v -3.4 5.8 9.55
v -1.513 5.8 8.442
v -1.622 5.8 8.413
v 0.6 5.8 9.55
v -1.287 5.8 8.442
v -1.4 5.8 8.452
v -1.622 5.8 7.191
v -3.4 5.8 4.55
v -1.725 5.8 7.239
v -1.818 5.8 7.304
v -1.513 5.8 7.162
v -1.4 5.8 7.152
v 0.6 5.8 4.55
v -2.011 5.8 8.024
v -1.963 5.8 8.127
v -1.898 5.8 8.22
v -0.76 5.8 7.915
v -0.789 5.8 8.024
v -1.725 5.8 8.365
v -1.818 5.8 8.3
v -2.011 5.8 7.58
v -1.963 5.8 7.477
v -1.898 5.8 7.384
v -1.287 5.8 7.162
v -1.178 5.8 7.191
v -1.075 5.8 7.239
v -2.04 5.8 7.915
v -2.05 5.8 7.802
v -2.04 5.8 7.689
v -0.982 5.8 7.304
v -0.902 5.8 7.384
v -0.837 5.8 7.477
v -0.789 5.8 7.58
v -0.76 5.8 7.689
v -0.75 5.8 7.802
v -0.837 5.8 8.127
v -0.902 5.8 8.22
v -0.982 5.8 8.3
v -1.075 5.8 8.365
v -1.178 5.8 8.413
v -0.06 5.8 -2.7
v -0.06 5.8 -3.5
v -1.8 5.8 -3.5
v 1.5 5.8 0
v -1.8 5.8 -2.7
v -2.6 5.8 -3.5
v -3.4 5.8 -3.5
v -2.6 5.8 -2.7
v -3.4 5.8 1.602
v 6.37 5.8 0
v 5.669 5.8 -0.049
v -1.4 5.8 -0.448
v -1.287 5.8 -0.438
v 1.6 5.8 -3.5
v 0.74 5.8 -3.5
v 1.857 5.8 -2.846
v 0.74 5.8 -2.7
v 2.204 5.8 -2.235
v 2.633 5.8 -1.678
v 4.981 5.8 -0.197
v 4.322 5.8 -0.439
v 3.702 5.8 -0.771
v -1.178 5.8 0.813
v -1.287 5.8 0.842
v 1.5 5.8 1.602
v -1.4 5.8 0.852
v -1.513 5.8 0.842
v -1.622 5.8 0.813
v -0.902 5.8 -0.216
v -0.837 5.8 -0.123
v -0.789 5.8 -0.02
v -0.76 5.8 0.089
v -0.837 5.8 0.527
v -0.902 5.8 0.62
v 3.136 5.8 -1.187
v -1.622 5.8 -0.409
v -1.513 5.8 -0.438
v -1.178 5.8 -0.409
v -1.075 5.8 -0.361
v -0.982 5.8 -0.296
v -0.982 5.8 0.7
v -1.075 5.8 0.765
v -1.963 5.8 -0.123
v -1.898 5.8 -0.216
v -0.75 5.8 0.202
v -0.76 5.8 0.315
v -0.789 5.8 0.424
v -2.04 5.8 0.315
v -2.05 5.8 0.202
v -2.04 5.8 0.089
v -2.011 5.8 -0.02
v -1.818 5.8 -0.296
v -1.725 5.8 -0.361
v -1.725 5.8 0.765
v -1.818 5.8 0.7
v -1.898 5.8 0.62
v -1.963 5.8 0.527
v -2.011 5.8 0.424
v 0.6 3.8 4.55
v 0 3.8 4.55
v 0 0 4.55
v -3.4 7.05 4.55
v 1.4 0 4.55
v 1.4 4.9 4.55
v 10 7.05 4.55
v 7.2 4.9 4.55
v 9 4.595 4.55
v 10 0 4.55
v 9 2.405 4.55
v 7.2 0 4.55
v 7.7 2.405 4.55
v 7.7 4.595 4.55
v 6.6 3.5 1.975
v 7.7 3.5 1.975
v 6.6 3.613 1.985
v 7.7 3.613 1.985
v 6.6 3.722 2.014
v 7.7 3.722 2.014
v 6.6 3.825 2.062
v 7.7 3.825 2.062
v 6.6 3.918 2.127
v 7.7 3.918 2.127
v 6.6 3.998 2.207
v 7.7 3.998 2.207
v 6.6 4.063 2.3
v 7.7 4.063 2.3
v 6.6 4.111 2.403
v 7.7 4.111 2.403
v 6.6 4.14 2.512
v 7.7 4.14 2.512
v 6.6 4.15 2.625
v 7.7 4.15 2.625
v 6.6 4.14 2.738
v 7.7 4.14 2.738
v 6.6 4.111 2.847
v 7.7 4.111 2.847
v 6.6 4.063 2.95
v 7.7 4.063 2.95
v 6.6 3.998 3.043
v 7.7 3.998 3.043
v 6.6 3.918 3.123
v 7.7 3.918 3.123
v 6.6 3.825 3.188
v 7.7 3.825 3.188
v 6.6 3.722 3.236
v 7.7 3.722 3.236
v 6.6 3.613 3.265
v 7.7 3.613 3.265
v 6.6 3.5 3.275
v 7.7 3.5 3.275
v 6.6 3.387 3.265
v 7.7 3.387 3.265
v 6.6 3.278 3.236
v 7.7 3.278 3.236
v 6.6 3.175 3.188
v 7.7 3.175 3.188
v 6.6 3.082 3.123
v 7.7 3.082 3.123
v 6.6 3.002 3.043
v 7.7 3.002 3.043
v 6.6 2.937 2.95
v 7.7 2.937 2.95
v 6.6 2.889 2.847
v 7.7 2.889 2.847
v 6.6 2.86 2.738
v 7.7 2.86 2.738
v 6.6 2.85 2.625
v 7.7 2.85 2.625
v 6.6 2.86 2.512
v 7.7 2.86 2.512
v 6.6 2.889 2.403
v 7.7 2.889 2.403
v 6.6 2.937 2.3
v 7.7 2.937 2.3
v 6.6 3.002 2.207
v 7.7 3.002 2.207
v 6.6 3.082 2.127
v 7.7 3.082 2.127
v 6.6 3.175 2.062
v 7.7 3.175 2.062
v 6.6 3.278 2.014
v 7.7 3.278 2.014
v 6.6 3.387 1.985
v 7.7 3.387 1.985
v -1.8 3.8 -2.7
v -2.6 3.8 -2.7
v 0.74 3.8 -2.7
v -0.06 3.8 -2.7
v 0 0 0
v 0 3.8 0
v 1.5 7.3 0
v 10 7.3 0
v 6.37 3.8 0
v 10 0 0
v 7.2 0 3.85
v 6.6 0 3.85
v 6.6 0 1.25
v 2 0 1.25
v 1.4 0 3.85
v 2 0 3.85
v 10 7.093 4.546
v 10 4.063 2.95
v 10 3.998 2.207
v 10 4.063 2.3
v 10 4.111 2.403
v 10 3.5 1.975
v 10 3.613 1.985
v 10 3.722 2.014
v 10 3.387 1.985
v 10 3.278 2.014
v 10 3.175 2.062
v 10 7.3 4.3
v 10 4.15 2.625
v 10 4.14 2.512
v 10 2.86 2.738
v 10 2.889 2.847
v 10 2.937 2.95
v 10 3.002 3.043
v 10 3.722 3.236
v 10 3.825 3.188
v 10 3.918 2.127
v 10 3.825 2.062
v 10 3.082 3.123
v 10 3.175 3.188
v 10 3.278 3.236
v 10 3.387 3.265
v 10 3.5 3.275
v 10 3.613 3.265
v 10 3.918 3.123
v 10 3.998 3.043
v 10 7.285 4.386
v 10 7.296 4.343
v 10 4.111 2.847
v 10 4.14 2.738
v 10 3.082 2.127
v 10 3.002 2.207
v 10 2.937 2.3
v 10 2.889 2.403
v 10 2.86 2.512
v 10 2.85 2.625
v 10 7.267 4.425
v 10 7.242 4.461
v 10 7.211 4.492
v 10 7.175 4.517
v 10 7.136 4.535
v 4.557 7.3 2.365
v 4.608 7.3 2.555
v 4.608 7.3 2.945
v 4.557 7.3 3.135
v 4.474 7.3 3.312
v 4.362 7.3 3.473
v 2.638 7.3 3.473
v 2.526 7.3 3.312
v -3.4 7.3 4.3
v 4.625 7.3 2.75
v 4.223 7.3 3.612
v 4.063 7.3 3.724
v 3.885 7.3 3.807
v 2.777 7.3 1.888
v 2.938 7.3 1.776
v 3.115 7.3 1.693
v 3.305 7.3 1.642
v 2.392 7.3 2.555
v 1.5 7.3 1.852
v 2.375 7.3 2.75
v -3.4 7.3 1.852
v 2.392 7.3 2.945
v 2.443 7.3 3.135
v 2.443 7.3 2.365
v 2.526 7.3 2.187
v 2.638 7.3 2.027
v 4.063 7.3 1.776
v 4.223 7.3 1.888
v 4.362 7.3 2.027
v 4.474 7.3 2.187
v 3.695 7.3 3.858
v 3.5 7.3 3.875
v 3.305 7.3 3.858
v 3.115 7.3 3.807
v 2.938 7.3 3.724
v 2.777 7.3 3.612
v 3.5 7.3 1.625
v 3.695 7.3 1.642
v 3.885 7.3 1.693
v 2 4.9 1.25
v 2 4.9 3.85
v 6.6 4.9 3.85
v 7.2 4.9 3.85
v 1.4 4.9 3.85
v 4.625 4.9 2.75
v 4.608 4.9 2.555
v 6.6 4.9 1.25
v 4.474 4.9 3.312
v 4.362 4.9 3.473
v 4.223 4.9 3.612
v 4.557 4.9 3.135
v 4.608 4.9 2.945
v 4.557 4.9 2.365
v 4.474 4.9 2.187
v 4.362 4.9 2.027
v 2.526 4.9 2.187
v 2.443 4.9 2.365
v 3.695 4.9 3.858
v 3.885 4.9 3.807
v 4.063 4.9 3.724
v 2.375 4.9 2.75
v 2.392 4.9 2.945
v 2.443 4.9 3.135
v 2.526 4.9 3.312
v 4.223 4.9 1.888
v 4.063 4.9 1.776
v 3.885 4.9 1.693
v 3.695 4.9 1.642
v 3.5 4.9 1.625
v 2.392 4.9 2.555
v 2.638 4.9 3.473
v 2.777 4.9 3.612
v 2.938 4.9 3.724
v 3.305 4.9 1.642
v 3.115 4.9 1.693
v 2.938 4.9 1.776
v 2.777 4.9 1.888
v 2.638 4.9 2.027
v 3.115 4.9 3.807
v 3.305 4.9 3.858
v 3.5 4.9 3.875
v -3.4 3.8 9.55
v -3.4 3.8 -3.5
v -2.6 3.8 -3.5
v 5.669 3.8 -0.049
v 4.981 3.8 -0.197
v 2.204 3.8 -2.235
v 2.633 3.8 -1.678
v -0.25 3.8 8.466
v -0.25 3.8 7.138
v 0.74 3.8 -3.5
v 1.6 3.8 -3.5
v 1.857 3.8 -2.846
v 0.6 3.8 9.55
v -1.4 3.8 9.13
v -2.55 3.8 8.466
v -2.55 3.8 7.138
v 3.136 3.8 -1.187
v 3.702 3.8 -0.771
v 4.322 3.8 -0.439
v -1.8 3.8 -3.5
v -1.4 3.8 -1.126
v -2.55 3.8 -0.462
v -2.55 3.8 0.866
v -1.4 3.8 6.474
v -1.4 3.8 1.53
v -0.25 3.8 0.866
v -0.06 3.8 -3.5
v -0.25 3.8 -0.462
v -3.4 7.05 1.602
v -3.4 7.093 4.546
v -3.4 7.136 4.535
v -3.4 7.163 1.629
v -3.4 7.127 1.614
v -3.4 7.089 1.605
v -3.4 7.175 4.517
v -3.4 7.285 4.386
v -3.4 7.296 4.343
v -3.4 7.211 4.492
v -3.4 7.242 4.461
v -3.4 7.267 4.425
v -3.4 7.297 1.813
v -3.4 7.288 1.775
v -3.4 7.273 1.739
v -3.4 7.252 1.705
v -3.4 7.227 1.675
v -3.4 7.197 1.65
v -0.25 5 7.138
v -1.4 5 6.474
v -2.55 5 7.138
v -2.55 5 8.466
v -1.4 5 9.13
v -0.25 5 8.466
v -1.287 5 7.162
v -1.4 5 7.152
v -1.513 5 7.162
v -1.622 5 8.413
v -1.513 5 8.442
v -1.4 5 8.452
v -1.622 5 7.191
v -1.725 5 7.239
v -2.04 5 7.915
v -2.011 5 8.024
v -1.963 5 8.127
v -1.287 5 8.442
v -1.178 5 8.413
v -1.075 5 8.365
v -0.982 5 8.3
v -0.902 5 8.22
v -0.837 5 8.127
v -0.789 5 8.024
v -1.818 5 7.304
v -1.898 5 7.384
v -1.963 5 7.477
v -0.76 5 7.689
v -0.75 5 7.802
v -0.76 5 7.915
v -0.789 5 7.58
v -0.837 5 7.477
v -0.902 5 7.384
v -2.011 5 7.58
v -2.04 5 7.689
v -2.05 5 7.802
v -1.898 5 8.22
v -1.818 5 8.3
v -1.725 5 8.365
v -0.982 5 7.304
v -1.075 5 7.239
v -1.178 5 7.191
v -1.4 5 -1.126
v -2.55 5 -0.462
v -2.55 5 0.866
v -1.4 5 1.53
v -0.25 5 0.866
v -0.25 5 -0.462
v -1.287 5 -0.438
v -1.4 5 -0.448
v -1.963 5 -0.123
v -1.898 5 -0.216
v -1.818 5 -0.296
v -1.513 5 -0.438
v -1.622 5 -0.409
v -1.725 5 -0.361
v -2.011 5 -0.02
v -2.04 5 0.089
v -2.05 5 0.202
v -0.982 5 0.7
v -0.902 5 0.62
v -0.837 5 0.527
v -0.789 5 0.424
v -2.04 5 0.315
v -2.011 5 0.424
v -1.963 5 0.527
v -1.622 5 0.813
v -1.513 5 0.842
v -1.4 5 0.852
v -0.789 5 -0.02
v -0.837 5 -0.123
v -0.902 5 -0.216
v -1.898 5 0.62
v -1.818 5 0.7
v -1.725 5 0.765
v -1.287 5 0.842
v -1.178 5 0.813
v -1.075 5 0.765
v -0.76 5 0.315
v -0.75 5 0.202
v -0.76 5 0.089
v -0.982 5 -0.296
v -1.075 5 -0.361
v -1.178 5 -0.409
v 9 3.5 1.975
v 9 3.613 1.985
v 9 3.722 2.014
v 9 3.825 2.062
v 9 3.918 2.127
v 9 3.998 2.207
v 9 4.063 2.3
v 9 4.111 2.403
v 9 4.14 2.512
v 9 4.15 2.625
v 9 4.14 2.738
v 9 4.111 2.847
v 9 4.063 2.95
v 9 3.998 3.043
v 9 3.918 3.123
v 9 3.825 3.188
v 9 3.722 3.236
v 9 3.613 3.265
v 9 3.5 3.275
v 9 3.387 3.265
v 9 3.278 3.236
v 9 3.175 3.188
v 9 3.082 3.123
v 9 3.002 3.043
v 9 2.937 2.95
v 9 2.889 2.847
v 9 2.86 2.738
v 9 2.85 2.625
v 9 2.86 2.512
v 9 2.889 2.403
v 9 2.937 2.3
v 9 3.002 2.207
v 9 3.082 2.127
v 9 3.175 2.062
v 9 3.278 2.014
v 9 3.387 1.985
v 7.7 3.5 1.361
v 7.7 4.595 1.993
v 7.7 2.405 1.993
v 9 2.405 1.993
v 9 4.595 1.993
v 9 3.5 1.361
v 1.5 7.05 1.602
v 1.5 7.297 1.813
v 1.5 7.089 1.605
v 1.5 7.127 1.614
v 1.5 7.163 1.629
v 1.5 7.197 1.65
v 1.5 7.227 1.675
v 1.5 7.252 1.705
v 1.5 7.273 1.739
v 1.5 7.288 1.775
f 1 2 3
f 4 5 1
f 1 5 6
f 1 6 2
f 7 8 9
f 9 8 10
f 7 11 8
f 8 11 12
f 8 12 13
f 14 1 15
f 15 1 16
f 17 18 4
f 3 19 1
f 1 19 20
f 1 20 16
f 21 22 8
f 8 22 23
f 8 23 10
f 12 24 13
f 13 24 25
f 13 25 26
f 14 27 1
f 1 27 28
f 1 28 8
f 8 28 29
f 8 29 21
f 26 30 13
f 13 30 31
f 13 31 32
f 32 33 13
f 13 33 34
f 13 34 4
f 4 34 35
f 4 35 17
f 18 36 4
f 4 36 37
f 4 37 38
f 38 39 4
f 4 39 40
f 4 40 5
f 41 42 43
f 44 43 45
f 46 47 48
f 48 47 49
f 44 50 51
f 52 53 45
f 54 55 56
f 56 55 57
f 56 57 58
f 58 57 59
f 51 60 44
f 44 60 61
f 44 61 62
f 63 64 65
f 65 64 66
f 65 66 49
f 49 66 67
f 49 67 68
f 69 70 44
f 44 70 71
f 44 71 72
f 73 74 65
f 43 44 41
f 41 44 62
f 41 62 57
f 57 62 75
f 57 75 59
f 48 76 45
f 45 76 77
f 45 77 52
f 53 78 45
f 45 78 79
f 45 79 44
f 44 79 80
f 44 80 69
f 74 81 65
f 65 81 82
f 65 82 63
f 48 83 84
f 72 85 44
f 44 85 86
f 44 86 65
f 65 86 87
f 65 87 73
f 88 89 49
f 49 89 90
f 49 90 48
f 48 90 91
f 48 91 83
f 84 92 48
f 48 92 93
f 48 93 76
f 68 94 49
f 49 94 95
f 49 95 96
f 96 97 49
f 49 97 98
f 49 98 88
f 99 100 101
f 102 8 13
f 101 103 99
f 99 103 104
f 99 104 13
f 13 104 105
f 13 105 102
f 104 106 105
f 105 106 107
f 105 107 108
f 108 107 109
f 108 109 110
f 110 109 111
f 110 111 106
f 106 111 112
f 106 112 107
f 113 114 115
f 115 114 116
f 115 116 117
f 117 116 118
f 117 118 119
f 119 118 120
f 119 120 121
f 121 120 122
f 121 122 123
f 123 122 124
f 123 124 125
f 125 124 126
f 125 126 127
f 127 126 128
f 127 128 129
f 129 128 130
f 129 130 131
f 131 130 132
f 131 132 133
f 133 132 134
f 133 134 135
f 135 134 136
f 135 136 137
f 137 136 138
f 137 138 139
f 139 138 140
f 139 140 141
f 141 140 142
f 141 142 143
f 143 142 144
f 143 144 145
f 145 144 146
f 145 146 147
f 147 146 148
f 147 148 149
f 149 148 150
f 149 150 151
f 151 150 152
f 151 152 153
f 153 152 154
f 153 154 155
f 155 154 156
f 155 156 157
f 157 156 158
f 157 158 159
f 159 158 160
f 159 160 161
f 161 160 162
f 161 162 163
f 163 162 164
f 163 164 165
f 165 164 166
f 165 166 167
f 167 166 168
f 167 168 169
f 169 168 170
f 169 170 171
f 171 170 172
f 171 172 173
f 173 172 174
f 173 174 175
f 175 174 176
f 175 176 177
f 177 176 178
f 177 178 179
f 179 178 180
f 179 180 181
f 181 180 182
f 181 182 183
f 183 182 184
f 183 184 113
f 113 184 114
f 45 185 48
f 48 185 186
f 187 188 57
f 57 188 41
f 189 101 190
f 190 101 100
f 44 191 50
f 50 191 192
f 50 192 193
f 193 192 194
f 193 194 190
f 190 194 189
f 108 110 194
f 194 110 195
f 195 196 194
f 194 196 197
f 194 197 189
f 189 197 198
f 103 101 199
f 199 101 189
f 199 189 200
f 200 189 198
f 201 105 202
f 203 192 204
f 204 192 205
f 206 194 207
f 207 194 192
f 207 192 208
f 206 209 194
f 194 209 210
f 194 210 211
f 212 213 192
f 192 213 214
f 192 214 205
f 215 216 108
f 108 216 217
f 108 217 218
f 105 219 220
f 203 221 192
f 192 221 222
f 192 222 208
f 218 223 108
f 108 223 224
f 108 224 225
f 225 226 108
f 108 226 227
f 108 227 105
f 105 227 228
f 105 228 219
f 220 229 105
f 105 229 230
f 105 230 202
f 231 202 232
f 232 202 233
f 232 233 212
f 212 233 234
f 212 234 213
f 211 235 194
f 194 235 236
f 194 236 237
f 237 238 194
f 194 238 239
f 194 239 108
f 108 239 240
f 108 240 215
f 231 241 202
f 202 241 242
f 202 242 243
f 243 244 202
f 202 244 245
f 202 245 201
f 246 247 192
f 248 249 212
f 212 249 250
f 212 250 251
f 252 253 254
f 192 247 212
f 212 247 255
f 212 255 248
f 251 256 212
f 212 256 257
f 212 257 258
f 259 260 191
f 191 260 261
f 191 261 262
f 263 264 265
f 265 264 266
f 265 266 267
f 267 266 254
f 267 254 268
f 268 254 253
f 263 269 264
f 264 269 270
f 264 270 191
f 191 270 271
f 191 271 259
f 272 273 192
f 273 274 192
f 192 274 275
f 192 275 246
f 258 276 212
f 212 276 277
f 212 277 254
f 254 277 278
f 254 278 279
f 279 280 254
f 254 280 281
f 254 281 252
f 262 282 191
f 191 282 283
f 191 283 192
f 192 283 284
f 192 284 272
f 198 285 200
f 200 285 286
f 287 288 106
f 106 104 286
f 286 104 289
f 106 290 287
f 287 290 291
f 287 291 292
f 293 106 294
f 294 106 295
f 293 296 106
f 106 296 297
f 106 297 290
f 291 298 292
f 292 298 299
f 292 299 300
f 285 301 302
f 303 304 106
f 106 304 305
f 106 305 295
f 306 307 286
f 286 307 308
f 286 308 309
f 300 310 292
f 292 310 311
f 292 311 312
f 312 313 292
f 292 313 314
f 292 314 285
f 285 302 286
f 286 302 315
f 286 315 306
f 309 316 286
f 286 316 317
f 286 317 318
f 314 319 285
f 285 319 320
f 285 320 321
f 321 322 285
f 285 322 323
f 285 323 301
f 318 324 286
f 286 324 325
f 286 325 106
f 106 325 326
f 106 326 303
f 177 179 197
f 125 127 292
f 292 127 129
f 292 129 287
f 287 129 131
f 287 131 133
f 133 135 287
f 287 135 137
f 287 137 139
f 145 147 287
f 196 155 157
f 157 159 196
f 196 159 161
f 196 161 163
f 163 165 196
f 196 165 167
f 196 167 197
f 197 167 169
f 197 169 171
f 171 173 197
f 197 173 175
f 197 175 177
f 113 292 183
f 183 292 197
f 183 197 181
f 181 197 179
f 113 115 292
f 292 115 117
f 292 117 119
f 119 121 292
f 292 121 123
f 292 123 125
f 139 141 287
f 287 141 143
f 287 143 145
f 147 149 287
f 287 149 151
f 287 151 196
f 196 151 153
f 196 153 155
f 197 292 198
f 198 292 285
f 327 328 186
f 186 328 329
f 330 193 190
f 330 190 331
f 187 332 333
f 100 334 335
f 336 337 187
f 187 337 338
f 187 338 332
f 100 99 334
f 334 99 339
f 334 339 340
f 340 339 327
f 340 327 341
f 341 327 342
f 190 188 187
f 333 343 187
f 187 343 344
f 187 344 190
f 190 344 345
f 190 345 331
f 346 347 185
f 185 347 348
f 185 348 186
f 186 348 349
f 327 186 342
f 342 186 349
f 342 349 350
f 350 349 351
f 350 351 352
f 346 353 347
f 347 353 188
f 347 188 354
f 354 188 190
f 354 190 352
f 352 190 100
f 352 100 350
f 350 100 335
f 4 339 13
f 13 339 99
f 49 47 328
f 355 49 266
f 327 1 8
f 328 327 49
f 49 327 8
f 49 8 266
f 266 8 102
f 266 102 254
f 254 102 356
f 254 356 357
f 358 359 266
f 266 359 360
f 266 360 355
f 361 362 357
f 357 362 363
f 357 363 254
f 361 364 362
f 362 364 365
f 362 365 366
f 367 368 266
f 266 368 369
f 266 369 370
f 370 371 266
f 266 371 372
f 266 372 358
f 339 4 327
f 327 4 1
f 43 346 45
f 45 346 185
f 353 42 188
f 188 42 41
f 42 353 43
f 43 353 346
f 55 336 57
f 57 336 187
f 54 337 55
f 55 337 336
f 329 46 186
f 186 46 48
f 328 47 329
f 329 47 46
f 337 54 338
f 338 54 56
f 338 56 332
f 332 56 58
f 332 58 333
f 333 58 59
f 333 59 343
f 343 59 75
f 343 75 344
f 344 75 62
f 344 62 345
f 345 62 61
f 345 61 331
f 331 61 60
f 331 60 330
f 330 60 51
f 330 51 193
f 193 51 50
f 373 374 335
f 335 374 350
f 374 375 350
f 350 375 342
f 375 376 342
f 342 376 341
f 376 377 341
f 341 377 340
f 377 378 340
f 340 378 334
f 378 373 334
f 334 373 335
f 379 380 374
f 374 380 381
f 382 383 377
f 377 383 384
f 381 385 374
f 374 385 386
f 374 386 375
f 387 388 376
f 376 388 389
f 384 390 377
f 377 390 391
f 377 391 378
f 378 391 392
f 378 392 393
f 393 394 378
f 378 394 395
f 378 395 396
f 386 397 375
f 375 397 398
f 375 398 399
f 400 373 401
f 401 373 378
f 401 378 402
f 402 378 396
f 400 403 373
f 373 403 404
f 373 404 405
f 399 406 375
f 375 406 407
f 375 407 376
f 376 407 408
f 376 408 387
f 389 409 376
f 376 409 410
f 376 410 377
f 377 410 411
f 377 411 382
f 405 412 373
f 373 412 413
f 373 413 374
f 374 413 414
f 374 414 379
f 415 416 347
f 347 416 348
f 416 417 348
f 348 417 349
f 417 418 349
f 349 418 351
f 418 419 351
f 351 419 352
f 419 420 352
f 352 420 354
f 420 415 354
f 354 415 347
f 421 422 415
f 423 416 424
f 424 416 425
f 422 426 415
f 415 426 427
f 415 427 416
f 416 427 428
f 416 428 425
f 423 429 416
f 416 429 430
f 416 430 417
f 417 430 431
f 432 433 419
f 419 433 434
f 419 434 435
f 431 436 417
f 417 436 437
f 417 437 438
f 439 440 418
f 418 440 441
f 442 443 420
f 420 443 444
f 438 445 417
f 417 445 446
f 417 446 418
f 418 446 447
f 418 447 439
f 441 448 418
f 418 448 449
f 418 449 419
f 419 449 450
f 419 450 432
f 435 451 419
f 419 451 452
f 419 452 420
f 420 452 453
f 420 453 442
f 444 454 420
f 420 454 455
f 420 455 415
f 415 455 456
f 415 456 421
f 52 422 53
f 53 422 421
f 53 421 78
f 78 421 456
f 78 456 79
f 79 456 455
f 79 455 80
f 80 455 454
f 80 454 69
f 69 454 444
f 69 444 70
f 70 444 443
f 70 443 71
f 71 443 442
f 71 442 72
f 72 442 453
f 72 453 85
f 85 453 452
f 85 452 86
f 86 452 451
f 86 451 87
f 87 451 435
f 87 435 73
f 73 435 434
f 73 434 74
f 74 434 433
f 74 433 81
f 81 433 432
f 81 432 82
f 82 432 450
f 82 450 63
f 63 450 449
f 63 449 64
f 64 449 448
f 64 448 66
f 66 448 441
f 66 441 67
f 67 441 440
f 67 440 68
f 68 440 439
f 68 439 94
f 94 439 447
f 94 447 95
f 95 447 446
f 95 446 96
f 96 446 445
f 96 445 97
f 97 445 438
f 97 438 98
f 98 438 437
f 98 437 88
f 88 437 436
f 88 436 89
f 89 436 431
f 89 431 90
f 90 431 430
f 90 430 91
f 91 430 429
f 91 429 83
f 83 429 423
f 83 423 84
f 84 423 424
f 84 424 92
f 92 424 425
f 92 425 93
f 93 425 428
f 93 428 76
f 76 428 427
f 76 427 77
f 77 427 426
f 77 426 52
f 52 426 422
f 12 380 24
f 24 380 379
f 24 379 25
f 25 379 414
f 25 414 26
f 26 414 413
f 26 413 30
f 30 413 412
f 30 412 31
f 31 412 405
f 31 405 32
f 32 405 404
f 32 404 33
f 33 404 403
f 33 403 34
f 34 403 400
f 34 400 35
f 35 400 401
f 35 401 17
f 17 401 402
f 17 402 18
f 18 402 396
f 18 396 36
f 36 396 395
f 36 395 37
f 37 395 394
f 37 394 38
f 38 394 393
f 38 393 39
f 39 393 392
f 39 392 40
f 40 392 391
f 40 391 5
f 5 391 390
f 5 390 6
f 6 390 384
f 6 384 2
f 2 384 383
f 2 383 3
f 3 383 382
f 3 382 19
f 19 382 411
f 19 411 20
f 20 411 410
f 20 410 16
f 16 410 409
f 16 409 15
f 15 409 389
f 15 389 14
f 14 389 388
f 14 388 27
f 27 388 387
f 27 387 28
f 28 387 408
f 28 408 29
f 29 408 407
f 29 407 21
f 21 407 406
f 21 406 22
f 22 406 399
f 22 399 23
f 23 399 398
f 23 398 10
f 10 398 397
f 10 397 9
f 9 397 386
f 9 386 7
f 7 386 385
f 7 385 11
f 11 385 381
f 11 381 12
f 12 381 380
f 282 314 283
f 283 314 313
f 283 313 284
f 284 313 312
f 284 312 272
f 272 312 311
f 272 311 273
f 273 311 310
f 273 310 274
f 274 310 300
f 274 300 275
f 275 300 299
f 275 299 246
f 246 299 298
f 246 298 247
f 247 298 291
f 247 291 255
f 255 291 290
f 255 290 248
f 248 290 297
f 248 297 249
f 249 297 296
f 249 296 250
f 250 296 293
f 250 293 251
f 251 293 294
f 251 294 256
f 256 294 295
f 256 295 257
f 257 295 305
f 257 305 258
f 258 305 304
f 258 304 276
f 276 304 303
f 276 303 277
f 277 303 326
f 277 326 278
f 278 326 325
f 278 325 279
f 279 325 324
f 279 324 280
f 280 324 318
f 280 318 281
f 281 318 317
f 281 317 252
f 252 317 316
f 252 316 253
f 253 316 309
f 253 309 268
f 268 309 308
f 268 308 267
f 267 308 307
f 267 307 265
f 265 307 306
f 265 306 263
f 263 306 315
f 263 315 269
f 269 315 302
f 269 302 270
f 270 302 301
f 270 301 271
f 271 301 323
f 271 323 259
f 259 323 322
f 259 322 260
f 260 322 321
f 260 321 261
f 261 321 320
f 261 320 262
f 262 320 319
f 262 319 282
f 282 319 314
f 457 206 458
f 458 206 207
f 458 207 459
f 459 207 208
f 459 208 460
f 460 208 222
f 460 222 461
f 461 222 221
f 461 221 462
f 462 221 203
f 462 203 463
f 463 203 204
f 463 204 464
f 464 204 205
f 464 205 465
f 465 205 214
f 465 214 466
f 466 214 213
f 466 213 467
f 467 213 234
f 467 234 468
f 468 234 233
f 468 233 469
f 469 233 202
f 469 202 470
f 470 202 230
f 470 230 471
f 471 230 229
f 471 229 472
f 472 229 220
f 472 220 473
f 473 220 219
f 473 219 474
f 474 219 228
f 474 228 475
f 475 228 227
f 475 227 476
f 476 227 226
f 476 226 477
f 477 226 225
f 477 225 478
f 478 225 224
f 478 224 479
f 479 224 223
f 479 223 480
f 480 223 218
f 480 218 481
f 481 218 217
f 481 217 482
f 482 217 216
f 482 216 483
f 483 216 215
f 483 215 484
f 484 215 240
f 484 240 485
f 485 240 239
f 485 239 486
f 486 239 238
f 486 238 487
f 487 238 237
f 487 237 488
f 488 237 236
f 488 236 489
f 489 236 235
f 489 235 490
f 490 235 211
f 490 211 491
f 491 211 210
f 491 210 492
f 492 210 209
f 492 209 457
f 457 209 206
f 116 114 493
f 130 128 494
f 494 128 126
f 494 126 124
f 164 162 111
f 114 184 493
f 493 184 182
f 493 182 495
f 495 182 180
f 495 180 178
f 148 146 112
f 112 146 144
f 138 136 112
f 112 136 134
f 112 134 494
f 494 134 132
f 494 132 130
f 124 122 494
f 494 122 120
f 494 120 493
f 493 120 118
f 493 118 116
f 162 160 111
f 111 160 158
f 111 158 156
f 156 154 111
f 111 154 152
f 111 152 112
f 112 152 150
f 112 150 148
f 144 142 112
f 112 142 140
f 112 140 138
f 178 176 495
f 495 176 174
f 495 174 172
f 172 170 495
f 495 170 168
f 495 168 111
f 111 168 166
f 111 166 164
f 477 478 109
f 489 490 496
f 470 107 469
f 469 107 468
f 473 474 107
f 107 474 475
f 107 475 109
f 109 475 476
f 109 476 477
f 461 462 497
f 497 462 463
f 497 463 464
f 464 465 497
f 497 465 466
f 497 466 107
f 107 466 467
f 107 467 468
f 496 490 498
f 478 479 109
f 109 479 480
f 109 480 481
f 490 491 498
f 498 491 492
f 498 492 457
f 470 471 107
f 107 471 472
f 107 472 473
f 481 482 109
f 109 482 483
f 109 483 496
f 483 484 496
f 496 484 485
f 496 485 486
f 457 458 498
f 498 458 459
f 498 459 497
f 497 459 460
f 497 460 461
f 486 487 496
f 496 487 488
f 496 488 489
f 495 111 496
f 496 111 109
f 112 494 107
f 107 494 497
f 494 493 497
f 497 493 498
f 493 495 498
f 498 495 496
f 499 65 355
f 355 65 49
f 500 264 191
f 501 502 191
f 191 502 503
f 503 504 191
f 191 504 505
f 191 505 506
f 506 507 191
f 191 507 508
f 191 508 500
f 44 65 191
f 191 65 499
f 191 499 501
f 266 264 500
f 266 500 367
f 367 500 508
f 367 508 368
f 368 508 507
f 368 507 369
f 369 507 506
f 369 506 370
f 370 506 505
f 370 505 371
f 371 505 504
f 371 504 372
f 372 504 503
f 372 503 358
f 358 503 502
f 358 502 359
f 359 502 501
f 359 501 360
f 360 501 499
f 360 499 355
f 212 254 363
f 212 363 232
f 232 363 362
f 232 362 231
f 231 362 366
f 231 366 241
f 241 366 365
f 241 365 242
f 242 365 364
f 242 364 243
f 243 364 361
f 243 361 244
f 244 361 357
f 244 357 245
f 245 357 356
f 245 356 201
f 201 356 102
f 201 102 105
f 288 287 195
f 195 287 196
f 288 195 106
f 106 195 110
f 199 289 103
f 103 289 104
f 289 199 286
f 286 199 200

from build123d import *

# Parameters (mm, degrees)
SKETCH2_W                = 10
SKETCH2_H                = 7.3
BOSS_EXTRUDE1_DEPTH      = 4.55
SKETCH3_W                = 4.6
SKETCH3_H                = 4.9
CUT_EXTRUDE1_DEPTH       = 3.3
BOSS_EXTRUDE2_DEPTH      = 9.55
BOSS_EXTRUDE2_DEPTH_BACK = 2.7
SKETCH5_W                = 4
SKETCH5_H                = 2
BOSS_EXTRUDE3_REACH      = 19.417
SKETCH13_W               = 5
SKETCH13_H               = 2
SKETCH6_W                = 1.74
SKETCH6_H                = 2
SKETCH6_W_2              = 0.86
SKETCH6_W_3              = 0.8
BOSS_EXTRUDE4_DEPTH      = 0.8
FILLET1_R                = 5
CUT_EXTRUDE2_DEPTH       = 1.2
SKETCH8_R                = 0.65
CUT_EXTRUDE3_DEPTH       = 15.703826033
SKETCH9_R                = 1.125
CUT_EXTRUDE4_DEPTH       = 15.670122699
CUT_EXTRUDE5_REACH       = 20.001
SKETCH10_R               = 0.65
CUT_EXTRUDE6_DEPTH       = 1.3
SKETCH14_W               = 3.4
SKETCH14_H               = 2.947905619
BOSS_EXTRUDE6_DEPTH      = 1.5
SKETCH15_W               = 1.5
SKETCH15_H               = 1.602094381
CUT_EXTRUDE7_DEPTH       = 1.5
FILLET2_R                = 0.25
SKETCH16_W               = 5.8
SKETCH16_H               = 4.9
CUT_EXTRUDE8_DEPTH       = 0.7


with BuildPart() as part:
    # Sketch2 → Boss-Extrude1 (new body)
    with BuildSketch(Plane.XY):
        with Locations((5, 3.65)):
            Rectangle(SKETCH2_W, SKETCH2_H)
    extrude(amount=BOSS_EXTRUDE1_DEPTH)

    # Sketch3 → Cut-Extrude1 (cut)
    with BuildSketch(Plane.XY.offset(4.55)):
        with Locations((4.3, 2.45)):
            Rectangle(SKETCH3_W, SKETCH3_H)
    extrude(amount=-CUT_EXTRUDE1_DEPTH, mode=Mode.SUBTRACT)

    # Sketch5 → Boss-Extrude2 (add, two sides: drawn at the far end of the back side and taken through both)
    with BuildSketch(Plane.XY.offset(-BOSS_EXTRUDE2_DEPTH_BACK)):
        with Locations((-1.4, 4.8)):
            Rectangle(SKETCH5_W, SKETCH5_H)
    extrude(amount=BOSS_EXTRUDE2_DEPTH + BOSS_EXTRUDE2_DEPTH_BACK)

    # Sketch13 → Boss-Extrude3 (add, up to next)
    with BuildSketch(Plane(origin=(0, 0, -2.7), x_dir=(-1, 0, 0), z_dir=(0, 0, -1)), mode=Mode.PRIVATE) as boss_extrude3_sk1:
        with Locations((0.9, 4.8)):
            Rectangle(SKETCH13_W, SKETCH13_H)
    boss_extrude3_tool1 = extrude(boss_extrude3_sk1.sketch, amount=-BOSS_EXTRUDE3_REACH, mode=Mode.PRIVATE) - part.part
    add(boss_extrude3_tool1.solids().sort_by_distance((-0.9, 4.8, -2.7))[0])

    # Sketch6 → Boss-Extrude4 (add)
    with BuildSketch(Plane(origin=(0, 0, -2.7), x_dir=(-1, 0, 0), z_dir=(0, 0, -1))):
        with Locations((0.93, 4.8)):
            Rectangle(SKETCH6_W, SKETCH6_H)
        with Locations((-1.17, 4.8)):
            Rectangle(SKETCH6_W_2, SKETCH6_H)
        with Locations((3, 4.8)):
            Rectangle(SKETCH6_W_3, SKETCH6_H)
    extrude(amount=BOSS_EXTRUDE4_DEPTH)

    # Fillet1
    # the kernel refuses this fillet: 5 mm, written as the material it adds along each edge
    with BuildSketch(Plane(origin=(1.6, 3.8, 0), x_dir=(0, 0, -1), z_dir=(0, 1, 0))) as fillet1_piece_1:
        with BuildLine():
            CenterArc((5, -4.769696007), FILLET1_R, 107.457603124, 72.542396876)
            Line((0, -4.769696007), (-0.1, -4.769696007))
            Line((-0.1, -4.769696007), (-0.1, 0))
            Line((-0.1, 0), (0, 0.1))
            ThreePointArc((0, 0.1), (1.75, 0.1), (3.47, 0.09539392))
            Line((3.47, 0.09539392), (3.5, 0))
        make_face()
    extrude(amount=2)

    # Sketch7 → Cut-Extrude2 (cut)
    with BuildSketch(Plane(origin=(0, 3.8, 0), x_dir=(-1, 0, 0), z_dir=(0, -1, 0))):
        Polygon((0.25, -7.138141571), (0.25, -8.46604719), (1.4, -9.13), (2.55, -8.46604719), (2.55, -7.138141571), (1.4, -6.474188762), align=None)
        Polygon((1.4, 1.125811238), (0.25, 0.461858429), (0.25, -0.86604719), (1.4, -1.53), (2.55, -0.86604719), (2.55, 0.461858429), align=None)
    extrude(amount=-CUT_EXTRUDE2_DEPTH, mode=Mode.SUBTRACT)

    # Sketch8 → Cut-Extrude3 (cut, through all)
    with BuildSketch(Plane.XZ.offset(-5)):
        with Locations(Location((-1.4, 7.802094381, 0), (0, 0, 270))):
            Circle(SKETCH8_R)
        with Locations(Location((-1.4, 0.202094381, 0), (0, 0, 270))):
            Circle(SKETCH8_R)
    extrude(amount=-CUT_EXTRUDE3_DEPTH, mode=Mode.SUBTRACT)

    # Sketch9 → Cut-Extrude4 (cut, through all)
    with BuildSketch(Plane.XZ.offset(-4.9)):
        with Locations(Location((3.5, 2.75, 0), (0, 0, 270))):
            Circle(SKETCH9_R)
    extrude(amount=-CUT_EXTRUDE4_DEPTH, mode=Mode.SUBTRACT)

    # Sketch10 → Cut-Extrude5 (cut, up to next)
    with BuildSketch(Plane(origin=(10, 0, 0), x_dir=(0, 0, -1), z_dir=(1, 0, 0)), mode=Mode.PRIVATE) as cut_extrude5_sk1:
        with Locations((-2.625, 3.5)):
            Circle(SKETCH10_R)
    cut_extrude5_tool1 = extrude(cut_extrude5_sk1.sketch, amount=-CUT_EXTRUDE5_REACH, mode=Mode.PRIVATE) & part.part
    add(cut_extrude5_tool1.solids().sort_by_distance((10, 3.5, 2.625))[0], mode=Mode.SUBTRACT)

    # Sketch12 → Cut-Extrude6 (cut)
    with BuildSketch(Plane(origin=(9, 0, 0), x_dir=(0, 0, -1), z_dir=(1, 0, 0))):
        Polygon((-3.257198545, 2.405), (-4.55, 2.405), (-4.55, 4.595), (-3.257198545, 4.595), (-1.992801455, 4.595), (-1.36060291, 3.5), (-1.992801455, 2.405), align=None)
    extrude(amount=-CUT_EXTRUDE6_DEPTH, mode=Mode.SUBTRACT)

    # Sketch14 → Boss-Extrude6 (add)
    with BuildSketch(Plane(origin=(0, 5.8, 0), x_dir=(1, 0, 0), z_dir=(0, 1, 0))):
        with Locations((-1.7, -3.076047191)):
            Rectangle(SKETCH14_W, SKETCH14_H)
    extrude(amount=BOSS_EXTRUDE6_DEPTH)

    # Sketch15 → Cut-Extrude7 (cut)
    with BuildSketch(Plane(origin=(0, 7.3, 0), x_dir=(1, 0, 0), z_dir=(0, 1, 0))):
        with Locations((0.75, -0.801047191)):
            Rectangle(SKETCH15_W, SKETCH15_H)
    extrude(amount=-CUT_EXTRUDE7_DEPTH, mode=Mode.SUBTRACT)

    # Fillet2
    fillet2_edges = [part.edges().sort_by_distance(p)[0] for p in [
        (3.3, 7.3, 4.55),
        (-0.95, 7.3, 1.602094381),
    ]]
    fillet(fillet2_edges, radius=FILLET2_R)

    # Sketch16 → Cut-Extrude8 (cut)
    with BuildSketch(Plane.XY.offset(4.55)):
        with Locations((4.3, 2.45)):
            Rectangle(SKETCH16_W, SKETCH16_H)
    extrude(amount=-CUT_EXTRUDE8_DEPTH, mode=Mode.SUBTRACT)


solid = part.part
